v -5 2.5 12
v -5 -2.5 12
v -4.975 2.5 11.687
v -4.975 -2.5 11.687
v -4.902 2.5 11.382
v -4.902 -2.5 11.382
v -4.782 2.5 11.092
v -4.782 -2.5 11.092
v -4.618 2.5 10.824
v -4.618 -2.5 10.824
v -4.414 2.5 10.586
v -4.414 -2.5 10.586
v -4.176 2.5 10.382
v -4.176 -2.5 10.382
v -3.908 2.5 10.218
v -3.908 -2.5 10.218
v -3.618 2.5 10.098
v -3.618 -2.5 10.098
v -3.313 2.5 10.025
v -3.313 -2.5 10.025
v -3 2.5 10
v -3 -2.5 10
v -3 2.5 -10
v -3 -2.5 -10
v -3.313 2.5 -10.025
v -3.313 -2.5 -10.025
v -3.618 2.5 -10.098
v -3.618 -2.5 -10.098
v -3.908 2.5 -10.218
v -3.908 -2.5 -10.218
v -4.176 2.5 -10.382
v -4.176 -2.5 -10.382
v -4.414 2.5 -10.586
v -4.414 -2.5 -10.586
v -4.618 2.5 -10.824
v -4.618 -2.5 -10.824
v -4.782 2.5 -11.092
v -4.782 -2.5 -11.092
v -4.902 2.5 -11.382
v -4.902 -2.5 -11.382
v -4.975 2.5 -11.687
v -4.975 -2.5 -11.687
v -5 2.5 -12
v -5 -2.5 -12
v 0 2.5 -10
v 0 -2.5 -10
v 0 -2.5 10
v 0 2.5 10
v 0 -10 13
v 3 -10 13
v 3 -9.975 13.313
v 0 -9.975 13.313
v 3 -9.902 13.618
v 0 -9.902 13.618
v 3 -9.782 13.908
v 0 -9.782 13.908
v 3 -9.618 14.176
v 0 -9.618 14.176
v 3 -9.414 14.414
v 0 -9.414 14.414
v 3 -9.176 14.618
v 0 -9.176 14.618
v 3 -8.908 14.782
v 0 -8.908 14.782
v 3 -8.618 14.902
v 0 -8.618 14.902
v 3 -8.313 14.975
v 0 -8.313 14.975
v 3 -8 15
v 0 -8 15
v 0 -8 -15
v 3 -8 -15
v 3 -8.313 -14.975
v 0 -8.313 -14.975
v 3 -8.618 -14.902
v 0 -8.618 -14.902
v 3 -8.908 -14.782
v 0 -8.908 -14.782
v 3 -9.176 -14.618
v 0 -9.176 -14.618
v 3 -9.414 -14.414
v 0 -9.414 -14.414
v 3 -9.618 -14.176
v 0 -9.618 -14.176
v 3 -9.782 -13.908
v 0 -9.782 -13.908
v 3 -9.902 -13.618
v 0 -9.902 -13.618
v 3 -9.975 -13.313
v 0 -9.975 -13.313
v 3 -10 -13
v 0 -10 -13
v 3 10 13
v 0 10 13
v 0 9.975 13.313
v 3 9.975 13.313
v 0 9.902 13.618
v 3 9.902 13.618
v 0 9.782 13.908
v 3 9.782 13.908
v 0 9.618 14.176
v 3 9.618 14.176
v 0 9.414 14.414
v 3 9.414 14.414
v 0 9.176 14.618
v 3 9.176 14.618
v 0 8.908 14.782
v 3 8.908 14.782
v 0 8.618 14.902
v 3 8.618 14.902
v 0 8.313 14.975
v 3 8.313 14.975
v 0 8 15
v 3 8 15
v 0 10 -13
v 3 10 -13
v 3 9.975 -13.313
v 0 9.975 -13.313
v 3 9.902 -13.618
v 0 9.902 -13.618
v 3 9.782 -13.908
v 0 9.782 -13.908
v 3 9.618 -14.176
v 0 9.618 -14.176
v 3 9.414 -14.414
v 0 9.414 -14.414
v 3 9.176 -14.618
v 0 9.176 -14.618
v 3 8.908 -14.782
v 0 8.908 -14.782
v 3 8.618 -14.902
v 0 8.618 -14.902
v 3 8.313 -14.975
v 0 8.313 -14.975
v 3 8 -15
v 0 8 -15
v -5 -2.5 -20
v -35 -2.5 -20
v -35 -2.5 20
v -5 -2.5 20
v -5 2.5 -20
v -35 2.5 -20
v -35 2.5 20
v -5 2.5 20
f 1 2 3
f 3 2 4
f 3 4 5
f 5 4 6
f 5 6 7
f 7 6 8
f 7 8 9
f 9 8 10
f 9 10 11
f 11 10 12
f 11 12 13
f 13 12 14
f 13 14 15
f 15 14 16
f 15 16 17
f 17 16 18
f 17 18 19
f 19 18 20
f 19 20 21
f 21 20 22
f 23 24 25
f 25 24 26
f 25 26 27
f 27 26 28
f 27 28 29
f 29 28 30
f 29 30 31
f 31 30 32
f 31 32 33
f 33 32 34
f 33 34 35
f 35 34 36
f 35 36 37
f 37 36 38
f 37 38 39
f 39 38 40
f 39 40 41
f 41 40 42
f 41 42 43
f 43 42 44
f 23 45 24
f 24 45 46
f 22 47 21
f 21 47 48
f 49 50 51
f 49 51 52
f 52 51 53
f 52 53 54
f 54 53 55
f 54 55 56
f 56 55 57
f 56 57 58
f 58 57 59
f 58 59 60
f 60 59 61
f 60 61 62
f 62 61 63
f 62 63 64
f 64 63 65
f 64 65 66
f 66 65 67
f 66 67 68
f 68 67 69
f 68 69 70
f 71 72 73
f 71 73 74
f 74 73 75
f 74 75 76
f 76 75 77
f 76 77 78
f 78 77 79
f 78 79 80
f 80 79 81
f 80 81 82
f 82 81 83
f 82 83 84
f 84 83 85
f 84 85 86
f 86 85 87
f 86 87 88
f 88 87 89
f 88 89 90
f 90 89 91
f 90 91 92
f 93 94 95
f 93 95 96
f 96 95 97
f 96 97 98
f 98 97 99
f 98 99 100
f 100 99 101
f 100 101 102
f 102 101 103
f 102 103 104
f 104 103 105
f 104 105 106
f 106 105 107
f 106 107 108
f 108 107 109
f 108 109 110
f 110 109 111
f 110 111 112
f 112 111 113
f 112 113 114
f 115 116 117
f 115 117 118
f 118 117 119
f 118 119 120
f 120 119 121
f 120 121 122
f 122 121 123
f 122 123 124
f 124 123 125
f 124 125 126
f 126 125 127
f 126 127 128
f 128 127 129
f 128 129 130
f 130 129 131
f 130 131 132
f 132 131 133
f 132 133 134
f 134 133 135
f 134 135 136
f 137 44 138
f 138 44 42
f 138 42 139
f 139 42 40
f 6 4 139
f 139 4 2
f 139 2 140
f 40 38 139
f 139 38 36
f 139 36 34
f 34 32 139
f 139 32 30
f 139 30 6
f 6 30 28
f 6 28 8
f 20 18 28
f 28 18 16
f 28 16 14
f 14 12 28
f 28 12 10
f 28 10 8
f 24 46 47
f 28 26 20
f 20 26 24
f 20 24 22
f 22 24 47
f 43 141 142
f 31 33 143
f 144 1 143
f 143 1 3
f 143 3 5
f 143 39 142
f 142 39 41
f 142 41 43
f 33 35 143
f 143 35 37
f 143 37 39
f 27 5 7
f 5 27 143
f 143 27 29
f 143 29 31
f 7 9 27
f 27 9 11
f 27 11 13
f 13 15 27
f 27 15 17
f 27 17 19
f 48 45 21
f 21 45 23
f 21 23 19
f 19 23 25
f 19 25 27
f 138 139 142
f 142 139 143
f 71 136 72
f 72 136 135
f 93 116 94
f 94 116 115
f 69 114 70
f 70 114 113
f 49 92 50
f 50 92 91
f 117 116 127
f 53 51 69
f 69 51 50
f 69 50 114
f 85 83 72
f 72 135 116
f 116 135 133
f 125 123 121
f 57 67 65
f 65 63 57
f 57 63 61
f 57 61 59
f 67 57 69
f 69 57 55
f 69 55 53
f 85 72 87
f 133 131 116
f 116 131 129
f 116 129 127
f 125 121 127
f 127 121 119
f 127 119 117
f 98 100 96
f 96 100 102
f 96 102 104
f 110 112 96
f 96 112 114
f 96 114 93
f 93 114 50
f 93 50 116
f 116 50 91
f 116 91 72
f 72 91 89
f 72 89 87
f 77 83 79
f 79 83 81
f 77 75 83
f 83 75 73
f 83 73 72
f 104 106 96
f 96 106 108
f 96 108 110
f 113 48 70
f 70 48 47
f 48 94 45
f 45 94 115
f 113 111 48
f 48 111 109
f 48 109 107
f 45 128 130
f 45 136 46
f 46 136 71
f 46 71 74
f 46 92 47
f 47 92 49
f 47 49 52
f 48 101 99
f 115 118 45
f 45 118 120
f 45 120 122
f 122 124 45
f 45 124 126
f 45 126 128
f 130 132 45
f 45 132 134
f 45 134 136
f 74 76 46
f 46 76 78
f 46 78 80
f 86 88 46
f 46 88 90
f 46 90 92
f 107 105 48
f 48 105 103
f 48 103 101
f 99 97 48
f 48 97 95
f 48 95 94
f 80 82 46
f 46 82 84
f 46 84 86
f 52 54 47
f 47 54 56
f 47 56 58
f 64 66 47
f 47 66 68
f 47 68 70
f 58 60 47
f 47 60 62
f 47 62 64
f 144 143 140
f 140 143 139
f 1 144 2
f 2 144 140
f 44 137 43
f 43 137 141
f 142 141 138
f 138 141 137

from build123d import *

# Parameters (mm, degrees)
SKETCH_1_W      = 20
SKETCH_1_H      = 5
EXTRUDE_1_DEPTH = 35
SKETCH_2_W      = 30
SKETCH_2_H      = 20
EXTRUDE_2_DEPTH = 3
FILLET_1_R      = 2
FILLET_2_R      = 2
FILLET_3_R      = 2
FILLET_4_R      = 2
SKETCH_4_W      = 30
SKETCH_4_H      = 40
EXTRUDE_3_DEPTH = 2.5
FILLET_5_R      = 2
FILLET_6_R      = 2


with BuildPart() as part:
    # 草图1 → 凸台-拉伸1 (new body)
    with BuildSketch(Plane(origin=(0, 0, 0), x_dir=(0, 0, -1), z_dir=(1, 0, 0))):
        Rectangle(SKETCH_1_W, SKETCH_1_H)
    extrude(amount=-EXTRUDE_1_DEPTH)

    # 草图2 → 凸台-拉伸2 (add)
    with BuildSketch(Plane(origin=(0, 0, 0), x_dir=(0, 0, -1), z_dir=(1, 0, 0))):
        Rectangle(SKETCH_2_W, SKETCH_2_H)
    extrude(amount=EXTRUDE_2_DEPTH)

    # 圆角1
    fillet_1_edges = [part.edges().sort_by_distance(p)[0] for p in [
        (1.5, 10, -15),
    ]]
    fillet(fillet_1_edges, radius=FILLET_1_R)

    # 圆角2
    fillet_2_edges = [part.edges().sort_by_distance(p)[0] for p in [
        (1.5, 10, 15),
    ]]
    fillet(fillet_2_edges, radius=FILLET_2_R)

    # 圆角3
    fillet_3_edges = [part.edges().sort_by_distance(p)[0] for p in [
        (1.5, -10, -15),
    ]]
    fillet(fillet_3_edges, radius=FILLET_3_R)

    # 圆角4
    fillet_4_edges = [part.edges().sort_by_distance(p)[0] for p in [
        (1.5, -10, 15),
    ]]
    fillet(fillet_4_edges, radius=FILLET_4_R)

    # 草图4 → 凸台-拉伸3 (add, symmetric)
    with BuildSketch(Plane(origin=(0, 0, 0), x_dir=(1, 0, 0), z_dir=(0, 1, 0))):
        with Locations((-20, 0)):
            Rectangle(SKETCH_4_W, SKETCH_4_H)
    extrude(amount=EXTRUDE_3_DEPTH, both=True)

    # 圆角5
    fillet_5_edges = [part.edges().sort_by_distance(p)[0] for p in [
        (-5, 0, -10),
    ]]
    fillet(fillet_5_edges, radius=FILLET_5_R)

    # 圆角6
    fillet_6_edges = [part.edges().sort_by_distance(p)[0] for p in [
        (-5, 0, 10),
    ]]
    fillet(fillet_6_edges, radius=FILLET_6_R)


solid = part.part
